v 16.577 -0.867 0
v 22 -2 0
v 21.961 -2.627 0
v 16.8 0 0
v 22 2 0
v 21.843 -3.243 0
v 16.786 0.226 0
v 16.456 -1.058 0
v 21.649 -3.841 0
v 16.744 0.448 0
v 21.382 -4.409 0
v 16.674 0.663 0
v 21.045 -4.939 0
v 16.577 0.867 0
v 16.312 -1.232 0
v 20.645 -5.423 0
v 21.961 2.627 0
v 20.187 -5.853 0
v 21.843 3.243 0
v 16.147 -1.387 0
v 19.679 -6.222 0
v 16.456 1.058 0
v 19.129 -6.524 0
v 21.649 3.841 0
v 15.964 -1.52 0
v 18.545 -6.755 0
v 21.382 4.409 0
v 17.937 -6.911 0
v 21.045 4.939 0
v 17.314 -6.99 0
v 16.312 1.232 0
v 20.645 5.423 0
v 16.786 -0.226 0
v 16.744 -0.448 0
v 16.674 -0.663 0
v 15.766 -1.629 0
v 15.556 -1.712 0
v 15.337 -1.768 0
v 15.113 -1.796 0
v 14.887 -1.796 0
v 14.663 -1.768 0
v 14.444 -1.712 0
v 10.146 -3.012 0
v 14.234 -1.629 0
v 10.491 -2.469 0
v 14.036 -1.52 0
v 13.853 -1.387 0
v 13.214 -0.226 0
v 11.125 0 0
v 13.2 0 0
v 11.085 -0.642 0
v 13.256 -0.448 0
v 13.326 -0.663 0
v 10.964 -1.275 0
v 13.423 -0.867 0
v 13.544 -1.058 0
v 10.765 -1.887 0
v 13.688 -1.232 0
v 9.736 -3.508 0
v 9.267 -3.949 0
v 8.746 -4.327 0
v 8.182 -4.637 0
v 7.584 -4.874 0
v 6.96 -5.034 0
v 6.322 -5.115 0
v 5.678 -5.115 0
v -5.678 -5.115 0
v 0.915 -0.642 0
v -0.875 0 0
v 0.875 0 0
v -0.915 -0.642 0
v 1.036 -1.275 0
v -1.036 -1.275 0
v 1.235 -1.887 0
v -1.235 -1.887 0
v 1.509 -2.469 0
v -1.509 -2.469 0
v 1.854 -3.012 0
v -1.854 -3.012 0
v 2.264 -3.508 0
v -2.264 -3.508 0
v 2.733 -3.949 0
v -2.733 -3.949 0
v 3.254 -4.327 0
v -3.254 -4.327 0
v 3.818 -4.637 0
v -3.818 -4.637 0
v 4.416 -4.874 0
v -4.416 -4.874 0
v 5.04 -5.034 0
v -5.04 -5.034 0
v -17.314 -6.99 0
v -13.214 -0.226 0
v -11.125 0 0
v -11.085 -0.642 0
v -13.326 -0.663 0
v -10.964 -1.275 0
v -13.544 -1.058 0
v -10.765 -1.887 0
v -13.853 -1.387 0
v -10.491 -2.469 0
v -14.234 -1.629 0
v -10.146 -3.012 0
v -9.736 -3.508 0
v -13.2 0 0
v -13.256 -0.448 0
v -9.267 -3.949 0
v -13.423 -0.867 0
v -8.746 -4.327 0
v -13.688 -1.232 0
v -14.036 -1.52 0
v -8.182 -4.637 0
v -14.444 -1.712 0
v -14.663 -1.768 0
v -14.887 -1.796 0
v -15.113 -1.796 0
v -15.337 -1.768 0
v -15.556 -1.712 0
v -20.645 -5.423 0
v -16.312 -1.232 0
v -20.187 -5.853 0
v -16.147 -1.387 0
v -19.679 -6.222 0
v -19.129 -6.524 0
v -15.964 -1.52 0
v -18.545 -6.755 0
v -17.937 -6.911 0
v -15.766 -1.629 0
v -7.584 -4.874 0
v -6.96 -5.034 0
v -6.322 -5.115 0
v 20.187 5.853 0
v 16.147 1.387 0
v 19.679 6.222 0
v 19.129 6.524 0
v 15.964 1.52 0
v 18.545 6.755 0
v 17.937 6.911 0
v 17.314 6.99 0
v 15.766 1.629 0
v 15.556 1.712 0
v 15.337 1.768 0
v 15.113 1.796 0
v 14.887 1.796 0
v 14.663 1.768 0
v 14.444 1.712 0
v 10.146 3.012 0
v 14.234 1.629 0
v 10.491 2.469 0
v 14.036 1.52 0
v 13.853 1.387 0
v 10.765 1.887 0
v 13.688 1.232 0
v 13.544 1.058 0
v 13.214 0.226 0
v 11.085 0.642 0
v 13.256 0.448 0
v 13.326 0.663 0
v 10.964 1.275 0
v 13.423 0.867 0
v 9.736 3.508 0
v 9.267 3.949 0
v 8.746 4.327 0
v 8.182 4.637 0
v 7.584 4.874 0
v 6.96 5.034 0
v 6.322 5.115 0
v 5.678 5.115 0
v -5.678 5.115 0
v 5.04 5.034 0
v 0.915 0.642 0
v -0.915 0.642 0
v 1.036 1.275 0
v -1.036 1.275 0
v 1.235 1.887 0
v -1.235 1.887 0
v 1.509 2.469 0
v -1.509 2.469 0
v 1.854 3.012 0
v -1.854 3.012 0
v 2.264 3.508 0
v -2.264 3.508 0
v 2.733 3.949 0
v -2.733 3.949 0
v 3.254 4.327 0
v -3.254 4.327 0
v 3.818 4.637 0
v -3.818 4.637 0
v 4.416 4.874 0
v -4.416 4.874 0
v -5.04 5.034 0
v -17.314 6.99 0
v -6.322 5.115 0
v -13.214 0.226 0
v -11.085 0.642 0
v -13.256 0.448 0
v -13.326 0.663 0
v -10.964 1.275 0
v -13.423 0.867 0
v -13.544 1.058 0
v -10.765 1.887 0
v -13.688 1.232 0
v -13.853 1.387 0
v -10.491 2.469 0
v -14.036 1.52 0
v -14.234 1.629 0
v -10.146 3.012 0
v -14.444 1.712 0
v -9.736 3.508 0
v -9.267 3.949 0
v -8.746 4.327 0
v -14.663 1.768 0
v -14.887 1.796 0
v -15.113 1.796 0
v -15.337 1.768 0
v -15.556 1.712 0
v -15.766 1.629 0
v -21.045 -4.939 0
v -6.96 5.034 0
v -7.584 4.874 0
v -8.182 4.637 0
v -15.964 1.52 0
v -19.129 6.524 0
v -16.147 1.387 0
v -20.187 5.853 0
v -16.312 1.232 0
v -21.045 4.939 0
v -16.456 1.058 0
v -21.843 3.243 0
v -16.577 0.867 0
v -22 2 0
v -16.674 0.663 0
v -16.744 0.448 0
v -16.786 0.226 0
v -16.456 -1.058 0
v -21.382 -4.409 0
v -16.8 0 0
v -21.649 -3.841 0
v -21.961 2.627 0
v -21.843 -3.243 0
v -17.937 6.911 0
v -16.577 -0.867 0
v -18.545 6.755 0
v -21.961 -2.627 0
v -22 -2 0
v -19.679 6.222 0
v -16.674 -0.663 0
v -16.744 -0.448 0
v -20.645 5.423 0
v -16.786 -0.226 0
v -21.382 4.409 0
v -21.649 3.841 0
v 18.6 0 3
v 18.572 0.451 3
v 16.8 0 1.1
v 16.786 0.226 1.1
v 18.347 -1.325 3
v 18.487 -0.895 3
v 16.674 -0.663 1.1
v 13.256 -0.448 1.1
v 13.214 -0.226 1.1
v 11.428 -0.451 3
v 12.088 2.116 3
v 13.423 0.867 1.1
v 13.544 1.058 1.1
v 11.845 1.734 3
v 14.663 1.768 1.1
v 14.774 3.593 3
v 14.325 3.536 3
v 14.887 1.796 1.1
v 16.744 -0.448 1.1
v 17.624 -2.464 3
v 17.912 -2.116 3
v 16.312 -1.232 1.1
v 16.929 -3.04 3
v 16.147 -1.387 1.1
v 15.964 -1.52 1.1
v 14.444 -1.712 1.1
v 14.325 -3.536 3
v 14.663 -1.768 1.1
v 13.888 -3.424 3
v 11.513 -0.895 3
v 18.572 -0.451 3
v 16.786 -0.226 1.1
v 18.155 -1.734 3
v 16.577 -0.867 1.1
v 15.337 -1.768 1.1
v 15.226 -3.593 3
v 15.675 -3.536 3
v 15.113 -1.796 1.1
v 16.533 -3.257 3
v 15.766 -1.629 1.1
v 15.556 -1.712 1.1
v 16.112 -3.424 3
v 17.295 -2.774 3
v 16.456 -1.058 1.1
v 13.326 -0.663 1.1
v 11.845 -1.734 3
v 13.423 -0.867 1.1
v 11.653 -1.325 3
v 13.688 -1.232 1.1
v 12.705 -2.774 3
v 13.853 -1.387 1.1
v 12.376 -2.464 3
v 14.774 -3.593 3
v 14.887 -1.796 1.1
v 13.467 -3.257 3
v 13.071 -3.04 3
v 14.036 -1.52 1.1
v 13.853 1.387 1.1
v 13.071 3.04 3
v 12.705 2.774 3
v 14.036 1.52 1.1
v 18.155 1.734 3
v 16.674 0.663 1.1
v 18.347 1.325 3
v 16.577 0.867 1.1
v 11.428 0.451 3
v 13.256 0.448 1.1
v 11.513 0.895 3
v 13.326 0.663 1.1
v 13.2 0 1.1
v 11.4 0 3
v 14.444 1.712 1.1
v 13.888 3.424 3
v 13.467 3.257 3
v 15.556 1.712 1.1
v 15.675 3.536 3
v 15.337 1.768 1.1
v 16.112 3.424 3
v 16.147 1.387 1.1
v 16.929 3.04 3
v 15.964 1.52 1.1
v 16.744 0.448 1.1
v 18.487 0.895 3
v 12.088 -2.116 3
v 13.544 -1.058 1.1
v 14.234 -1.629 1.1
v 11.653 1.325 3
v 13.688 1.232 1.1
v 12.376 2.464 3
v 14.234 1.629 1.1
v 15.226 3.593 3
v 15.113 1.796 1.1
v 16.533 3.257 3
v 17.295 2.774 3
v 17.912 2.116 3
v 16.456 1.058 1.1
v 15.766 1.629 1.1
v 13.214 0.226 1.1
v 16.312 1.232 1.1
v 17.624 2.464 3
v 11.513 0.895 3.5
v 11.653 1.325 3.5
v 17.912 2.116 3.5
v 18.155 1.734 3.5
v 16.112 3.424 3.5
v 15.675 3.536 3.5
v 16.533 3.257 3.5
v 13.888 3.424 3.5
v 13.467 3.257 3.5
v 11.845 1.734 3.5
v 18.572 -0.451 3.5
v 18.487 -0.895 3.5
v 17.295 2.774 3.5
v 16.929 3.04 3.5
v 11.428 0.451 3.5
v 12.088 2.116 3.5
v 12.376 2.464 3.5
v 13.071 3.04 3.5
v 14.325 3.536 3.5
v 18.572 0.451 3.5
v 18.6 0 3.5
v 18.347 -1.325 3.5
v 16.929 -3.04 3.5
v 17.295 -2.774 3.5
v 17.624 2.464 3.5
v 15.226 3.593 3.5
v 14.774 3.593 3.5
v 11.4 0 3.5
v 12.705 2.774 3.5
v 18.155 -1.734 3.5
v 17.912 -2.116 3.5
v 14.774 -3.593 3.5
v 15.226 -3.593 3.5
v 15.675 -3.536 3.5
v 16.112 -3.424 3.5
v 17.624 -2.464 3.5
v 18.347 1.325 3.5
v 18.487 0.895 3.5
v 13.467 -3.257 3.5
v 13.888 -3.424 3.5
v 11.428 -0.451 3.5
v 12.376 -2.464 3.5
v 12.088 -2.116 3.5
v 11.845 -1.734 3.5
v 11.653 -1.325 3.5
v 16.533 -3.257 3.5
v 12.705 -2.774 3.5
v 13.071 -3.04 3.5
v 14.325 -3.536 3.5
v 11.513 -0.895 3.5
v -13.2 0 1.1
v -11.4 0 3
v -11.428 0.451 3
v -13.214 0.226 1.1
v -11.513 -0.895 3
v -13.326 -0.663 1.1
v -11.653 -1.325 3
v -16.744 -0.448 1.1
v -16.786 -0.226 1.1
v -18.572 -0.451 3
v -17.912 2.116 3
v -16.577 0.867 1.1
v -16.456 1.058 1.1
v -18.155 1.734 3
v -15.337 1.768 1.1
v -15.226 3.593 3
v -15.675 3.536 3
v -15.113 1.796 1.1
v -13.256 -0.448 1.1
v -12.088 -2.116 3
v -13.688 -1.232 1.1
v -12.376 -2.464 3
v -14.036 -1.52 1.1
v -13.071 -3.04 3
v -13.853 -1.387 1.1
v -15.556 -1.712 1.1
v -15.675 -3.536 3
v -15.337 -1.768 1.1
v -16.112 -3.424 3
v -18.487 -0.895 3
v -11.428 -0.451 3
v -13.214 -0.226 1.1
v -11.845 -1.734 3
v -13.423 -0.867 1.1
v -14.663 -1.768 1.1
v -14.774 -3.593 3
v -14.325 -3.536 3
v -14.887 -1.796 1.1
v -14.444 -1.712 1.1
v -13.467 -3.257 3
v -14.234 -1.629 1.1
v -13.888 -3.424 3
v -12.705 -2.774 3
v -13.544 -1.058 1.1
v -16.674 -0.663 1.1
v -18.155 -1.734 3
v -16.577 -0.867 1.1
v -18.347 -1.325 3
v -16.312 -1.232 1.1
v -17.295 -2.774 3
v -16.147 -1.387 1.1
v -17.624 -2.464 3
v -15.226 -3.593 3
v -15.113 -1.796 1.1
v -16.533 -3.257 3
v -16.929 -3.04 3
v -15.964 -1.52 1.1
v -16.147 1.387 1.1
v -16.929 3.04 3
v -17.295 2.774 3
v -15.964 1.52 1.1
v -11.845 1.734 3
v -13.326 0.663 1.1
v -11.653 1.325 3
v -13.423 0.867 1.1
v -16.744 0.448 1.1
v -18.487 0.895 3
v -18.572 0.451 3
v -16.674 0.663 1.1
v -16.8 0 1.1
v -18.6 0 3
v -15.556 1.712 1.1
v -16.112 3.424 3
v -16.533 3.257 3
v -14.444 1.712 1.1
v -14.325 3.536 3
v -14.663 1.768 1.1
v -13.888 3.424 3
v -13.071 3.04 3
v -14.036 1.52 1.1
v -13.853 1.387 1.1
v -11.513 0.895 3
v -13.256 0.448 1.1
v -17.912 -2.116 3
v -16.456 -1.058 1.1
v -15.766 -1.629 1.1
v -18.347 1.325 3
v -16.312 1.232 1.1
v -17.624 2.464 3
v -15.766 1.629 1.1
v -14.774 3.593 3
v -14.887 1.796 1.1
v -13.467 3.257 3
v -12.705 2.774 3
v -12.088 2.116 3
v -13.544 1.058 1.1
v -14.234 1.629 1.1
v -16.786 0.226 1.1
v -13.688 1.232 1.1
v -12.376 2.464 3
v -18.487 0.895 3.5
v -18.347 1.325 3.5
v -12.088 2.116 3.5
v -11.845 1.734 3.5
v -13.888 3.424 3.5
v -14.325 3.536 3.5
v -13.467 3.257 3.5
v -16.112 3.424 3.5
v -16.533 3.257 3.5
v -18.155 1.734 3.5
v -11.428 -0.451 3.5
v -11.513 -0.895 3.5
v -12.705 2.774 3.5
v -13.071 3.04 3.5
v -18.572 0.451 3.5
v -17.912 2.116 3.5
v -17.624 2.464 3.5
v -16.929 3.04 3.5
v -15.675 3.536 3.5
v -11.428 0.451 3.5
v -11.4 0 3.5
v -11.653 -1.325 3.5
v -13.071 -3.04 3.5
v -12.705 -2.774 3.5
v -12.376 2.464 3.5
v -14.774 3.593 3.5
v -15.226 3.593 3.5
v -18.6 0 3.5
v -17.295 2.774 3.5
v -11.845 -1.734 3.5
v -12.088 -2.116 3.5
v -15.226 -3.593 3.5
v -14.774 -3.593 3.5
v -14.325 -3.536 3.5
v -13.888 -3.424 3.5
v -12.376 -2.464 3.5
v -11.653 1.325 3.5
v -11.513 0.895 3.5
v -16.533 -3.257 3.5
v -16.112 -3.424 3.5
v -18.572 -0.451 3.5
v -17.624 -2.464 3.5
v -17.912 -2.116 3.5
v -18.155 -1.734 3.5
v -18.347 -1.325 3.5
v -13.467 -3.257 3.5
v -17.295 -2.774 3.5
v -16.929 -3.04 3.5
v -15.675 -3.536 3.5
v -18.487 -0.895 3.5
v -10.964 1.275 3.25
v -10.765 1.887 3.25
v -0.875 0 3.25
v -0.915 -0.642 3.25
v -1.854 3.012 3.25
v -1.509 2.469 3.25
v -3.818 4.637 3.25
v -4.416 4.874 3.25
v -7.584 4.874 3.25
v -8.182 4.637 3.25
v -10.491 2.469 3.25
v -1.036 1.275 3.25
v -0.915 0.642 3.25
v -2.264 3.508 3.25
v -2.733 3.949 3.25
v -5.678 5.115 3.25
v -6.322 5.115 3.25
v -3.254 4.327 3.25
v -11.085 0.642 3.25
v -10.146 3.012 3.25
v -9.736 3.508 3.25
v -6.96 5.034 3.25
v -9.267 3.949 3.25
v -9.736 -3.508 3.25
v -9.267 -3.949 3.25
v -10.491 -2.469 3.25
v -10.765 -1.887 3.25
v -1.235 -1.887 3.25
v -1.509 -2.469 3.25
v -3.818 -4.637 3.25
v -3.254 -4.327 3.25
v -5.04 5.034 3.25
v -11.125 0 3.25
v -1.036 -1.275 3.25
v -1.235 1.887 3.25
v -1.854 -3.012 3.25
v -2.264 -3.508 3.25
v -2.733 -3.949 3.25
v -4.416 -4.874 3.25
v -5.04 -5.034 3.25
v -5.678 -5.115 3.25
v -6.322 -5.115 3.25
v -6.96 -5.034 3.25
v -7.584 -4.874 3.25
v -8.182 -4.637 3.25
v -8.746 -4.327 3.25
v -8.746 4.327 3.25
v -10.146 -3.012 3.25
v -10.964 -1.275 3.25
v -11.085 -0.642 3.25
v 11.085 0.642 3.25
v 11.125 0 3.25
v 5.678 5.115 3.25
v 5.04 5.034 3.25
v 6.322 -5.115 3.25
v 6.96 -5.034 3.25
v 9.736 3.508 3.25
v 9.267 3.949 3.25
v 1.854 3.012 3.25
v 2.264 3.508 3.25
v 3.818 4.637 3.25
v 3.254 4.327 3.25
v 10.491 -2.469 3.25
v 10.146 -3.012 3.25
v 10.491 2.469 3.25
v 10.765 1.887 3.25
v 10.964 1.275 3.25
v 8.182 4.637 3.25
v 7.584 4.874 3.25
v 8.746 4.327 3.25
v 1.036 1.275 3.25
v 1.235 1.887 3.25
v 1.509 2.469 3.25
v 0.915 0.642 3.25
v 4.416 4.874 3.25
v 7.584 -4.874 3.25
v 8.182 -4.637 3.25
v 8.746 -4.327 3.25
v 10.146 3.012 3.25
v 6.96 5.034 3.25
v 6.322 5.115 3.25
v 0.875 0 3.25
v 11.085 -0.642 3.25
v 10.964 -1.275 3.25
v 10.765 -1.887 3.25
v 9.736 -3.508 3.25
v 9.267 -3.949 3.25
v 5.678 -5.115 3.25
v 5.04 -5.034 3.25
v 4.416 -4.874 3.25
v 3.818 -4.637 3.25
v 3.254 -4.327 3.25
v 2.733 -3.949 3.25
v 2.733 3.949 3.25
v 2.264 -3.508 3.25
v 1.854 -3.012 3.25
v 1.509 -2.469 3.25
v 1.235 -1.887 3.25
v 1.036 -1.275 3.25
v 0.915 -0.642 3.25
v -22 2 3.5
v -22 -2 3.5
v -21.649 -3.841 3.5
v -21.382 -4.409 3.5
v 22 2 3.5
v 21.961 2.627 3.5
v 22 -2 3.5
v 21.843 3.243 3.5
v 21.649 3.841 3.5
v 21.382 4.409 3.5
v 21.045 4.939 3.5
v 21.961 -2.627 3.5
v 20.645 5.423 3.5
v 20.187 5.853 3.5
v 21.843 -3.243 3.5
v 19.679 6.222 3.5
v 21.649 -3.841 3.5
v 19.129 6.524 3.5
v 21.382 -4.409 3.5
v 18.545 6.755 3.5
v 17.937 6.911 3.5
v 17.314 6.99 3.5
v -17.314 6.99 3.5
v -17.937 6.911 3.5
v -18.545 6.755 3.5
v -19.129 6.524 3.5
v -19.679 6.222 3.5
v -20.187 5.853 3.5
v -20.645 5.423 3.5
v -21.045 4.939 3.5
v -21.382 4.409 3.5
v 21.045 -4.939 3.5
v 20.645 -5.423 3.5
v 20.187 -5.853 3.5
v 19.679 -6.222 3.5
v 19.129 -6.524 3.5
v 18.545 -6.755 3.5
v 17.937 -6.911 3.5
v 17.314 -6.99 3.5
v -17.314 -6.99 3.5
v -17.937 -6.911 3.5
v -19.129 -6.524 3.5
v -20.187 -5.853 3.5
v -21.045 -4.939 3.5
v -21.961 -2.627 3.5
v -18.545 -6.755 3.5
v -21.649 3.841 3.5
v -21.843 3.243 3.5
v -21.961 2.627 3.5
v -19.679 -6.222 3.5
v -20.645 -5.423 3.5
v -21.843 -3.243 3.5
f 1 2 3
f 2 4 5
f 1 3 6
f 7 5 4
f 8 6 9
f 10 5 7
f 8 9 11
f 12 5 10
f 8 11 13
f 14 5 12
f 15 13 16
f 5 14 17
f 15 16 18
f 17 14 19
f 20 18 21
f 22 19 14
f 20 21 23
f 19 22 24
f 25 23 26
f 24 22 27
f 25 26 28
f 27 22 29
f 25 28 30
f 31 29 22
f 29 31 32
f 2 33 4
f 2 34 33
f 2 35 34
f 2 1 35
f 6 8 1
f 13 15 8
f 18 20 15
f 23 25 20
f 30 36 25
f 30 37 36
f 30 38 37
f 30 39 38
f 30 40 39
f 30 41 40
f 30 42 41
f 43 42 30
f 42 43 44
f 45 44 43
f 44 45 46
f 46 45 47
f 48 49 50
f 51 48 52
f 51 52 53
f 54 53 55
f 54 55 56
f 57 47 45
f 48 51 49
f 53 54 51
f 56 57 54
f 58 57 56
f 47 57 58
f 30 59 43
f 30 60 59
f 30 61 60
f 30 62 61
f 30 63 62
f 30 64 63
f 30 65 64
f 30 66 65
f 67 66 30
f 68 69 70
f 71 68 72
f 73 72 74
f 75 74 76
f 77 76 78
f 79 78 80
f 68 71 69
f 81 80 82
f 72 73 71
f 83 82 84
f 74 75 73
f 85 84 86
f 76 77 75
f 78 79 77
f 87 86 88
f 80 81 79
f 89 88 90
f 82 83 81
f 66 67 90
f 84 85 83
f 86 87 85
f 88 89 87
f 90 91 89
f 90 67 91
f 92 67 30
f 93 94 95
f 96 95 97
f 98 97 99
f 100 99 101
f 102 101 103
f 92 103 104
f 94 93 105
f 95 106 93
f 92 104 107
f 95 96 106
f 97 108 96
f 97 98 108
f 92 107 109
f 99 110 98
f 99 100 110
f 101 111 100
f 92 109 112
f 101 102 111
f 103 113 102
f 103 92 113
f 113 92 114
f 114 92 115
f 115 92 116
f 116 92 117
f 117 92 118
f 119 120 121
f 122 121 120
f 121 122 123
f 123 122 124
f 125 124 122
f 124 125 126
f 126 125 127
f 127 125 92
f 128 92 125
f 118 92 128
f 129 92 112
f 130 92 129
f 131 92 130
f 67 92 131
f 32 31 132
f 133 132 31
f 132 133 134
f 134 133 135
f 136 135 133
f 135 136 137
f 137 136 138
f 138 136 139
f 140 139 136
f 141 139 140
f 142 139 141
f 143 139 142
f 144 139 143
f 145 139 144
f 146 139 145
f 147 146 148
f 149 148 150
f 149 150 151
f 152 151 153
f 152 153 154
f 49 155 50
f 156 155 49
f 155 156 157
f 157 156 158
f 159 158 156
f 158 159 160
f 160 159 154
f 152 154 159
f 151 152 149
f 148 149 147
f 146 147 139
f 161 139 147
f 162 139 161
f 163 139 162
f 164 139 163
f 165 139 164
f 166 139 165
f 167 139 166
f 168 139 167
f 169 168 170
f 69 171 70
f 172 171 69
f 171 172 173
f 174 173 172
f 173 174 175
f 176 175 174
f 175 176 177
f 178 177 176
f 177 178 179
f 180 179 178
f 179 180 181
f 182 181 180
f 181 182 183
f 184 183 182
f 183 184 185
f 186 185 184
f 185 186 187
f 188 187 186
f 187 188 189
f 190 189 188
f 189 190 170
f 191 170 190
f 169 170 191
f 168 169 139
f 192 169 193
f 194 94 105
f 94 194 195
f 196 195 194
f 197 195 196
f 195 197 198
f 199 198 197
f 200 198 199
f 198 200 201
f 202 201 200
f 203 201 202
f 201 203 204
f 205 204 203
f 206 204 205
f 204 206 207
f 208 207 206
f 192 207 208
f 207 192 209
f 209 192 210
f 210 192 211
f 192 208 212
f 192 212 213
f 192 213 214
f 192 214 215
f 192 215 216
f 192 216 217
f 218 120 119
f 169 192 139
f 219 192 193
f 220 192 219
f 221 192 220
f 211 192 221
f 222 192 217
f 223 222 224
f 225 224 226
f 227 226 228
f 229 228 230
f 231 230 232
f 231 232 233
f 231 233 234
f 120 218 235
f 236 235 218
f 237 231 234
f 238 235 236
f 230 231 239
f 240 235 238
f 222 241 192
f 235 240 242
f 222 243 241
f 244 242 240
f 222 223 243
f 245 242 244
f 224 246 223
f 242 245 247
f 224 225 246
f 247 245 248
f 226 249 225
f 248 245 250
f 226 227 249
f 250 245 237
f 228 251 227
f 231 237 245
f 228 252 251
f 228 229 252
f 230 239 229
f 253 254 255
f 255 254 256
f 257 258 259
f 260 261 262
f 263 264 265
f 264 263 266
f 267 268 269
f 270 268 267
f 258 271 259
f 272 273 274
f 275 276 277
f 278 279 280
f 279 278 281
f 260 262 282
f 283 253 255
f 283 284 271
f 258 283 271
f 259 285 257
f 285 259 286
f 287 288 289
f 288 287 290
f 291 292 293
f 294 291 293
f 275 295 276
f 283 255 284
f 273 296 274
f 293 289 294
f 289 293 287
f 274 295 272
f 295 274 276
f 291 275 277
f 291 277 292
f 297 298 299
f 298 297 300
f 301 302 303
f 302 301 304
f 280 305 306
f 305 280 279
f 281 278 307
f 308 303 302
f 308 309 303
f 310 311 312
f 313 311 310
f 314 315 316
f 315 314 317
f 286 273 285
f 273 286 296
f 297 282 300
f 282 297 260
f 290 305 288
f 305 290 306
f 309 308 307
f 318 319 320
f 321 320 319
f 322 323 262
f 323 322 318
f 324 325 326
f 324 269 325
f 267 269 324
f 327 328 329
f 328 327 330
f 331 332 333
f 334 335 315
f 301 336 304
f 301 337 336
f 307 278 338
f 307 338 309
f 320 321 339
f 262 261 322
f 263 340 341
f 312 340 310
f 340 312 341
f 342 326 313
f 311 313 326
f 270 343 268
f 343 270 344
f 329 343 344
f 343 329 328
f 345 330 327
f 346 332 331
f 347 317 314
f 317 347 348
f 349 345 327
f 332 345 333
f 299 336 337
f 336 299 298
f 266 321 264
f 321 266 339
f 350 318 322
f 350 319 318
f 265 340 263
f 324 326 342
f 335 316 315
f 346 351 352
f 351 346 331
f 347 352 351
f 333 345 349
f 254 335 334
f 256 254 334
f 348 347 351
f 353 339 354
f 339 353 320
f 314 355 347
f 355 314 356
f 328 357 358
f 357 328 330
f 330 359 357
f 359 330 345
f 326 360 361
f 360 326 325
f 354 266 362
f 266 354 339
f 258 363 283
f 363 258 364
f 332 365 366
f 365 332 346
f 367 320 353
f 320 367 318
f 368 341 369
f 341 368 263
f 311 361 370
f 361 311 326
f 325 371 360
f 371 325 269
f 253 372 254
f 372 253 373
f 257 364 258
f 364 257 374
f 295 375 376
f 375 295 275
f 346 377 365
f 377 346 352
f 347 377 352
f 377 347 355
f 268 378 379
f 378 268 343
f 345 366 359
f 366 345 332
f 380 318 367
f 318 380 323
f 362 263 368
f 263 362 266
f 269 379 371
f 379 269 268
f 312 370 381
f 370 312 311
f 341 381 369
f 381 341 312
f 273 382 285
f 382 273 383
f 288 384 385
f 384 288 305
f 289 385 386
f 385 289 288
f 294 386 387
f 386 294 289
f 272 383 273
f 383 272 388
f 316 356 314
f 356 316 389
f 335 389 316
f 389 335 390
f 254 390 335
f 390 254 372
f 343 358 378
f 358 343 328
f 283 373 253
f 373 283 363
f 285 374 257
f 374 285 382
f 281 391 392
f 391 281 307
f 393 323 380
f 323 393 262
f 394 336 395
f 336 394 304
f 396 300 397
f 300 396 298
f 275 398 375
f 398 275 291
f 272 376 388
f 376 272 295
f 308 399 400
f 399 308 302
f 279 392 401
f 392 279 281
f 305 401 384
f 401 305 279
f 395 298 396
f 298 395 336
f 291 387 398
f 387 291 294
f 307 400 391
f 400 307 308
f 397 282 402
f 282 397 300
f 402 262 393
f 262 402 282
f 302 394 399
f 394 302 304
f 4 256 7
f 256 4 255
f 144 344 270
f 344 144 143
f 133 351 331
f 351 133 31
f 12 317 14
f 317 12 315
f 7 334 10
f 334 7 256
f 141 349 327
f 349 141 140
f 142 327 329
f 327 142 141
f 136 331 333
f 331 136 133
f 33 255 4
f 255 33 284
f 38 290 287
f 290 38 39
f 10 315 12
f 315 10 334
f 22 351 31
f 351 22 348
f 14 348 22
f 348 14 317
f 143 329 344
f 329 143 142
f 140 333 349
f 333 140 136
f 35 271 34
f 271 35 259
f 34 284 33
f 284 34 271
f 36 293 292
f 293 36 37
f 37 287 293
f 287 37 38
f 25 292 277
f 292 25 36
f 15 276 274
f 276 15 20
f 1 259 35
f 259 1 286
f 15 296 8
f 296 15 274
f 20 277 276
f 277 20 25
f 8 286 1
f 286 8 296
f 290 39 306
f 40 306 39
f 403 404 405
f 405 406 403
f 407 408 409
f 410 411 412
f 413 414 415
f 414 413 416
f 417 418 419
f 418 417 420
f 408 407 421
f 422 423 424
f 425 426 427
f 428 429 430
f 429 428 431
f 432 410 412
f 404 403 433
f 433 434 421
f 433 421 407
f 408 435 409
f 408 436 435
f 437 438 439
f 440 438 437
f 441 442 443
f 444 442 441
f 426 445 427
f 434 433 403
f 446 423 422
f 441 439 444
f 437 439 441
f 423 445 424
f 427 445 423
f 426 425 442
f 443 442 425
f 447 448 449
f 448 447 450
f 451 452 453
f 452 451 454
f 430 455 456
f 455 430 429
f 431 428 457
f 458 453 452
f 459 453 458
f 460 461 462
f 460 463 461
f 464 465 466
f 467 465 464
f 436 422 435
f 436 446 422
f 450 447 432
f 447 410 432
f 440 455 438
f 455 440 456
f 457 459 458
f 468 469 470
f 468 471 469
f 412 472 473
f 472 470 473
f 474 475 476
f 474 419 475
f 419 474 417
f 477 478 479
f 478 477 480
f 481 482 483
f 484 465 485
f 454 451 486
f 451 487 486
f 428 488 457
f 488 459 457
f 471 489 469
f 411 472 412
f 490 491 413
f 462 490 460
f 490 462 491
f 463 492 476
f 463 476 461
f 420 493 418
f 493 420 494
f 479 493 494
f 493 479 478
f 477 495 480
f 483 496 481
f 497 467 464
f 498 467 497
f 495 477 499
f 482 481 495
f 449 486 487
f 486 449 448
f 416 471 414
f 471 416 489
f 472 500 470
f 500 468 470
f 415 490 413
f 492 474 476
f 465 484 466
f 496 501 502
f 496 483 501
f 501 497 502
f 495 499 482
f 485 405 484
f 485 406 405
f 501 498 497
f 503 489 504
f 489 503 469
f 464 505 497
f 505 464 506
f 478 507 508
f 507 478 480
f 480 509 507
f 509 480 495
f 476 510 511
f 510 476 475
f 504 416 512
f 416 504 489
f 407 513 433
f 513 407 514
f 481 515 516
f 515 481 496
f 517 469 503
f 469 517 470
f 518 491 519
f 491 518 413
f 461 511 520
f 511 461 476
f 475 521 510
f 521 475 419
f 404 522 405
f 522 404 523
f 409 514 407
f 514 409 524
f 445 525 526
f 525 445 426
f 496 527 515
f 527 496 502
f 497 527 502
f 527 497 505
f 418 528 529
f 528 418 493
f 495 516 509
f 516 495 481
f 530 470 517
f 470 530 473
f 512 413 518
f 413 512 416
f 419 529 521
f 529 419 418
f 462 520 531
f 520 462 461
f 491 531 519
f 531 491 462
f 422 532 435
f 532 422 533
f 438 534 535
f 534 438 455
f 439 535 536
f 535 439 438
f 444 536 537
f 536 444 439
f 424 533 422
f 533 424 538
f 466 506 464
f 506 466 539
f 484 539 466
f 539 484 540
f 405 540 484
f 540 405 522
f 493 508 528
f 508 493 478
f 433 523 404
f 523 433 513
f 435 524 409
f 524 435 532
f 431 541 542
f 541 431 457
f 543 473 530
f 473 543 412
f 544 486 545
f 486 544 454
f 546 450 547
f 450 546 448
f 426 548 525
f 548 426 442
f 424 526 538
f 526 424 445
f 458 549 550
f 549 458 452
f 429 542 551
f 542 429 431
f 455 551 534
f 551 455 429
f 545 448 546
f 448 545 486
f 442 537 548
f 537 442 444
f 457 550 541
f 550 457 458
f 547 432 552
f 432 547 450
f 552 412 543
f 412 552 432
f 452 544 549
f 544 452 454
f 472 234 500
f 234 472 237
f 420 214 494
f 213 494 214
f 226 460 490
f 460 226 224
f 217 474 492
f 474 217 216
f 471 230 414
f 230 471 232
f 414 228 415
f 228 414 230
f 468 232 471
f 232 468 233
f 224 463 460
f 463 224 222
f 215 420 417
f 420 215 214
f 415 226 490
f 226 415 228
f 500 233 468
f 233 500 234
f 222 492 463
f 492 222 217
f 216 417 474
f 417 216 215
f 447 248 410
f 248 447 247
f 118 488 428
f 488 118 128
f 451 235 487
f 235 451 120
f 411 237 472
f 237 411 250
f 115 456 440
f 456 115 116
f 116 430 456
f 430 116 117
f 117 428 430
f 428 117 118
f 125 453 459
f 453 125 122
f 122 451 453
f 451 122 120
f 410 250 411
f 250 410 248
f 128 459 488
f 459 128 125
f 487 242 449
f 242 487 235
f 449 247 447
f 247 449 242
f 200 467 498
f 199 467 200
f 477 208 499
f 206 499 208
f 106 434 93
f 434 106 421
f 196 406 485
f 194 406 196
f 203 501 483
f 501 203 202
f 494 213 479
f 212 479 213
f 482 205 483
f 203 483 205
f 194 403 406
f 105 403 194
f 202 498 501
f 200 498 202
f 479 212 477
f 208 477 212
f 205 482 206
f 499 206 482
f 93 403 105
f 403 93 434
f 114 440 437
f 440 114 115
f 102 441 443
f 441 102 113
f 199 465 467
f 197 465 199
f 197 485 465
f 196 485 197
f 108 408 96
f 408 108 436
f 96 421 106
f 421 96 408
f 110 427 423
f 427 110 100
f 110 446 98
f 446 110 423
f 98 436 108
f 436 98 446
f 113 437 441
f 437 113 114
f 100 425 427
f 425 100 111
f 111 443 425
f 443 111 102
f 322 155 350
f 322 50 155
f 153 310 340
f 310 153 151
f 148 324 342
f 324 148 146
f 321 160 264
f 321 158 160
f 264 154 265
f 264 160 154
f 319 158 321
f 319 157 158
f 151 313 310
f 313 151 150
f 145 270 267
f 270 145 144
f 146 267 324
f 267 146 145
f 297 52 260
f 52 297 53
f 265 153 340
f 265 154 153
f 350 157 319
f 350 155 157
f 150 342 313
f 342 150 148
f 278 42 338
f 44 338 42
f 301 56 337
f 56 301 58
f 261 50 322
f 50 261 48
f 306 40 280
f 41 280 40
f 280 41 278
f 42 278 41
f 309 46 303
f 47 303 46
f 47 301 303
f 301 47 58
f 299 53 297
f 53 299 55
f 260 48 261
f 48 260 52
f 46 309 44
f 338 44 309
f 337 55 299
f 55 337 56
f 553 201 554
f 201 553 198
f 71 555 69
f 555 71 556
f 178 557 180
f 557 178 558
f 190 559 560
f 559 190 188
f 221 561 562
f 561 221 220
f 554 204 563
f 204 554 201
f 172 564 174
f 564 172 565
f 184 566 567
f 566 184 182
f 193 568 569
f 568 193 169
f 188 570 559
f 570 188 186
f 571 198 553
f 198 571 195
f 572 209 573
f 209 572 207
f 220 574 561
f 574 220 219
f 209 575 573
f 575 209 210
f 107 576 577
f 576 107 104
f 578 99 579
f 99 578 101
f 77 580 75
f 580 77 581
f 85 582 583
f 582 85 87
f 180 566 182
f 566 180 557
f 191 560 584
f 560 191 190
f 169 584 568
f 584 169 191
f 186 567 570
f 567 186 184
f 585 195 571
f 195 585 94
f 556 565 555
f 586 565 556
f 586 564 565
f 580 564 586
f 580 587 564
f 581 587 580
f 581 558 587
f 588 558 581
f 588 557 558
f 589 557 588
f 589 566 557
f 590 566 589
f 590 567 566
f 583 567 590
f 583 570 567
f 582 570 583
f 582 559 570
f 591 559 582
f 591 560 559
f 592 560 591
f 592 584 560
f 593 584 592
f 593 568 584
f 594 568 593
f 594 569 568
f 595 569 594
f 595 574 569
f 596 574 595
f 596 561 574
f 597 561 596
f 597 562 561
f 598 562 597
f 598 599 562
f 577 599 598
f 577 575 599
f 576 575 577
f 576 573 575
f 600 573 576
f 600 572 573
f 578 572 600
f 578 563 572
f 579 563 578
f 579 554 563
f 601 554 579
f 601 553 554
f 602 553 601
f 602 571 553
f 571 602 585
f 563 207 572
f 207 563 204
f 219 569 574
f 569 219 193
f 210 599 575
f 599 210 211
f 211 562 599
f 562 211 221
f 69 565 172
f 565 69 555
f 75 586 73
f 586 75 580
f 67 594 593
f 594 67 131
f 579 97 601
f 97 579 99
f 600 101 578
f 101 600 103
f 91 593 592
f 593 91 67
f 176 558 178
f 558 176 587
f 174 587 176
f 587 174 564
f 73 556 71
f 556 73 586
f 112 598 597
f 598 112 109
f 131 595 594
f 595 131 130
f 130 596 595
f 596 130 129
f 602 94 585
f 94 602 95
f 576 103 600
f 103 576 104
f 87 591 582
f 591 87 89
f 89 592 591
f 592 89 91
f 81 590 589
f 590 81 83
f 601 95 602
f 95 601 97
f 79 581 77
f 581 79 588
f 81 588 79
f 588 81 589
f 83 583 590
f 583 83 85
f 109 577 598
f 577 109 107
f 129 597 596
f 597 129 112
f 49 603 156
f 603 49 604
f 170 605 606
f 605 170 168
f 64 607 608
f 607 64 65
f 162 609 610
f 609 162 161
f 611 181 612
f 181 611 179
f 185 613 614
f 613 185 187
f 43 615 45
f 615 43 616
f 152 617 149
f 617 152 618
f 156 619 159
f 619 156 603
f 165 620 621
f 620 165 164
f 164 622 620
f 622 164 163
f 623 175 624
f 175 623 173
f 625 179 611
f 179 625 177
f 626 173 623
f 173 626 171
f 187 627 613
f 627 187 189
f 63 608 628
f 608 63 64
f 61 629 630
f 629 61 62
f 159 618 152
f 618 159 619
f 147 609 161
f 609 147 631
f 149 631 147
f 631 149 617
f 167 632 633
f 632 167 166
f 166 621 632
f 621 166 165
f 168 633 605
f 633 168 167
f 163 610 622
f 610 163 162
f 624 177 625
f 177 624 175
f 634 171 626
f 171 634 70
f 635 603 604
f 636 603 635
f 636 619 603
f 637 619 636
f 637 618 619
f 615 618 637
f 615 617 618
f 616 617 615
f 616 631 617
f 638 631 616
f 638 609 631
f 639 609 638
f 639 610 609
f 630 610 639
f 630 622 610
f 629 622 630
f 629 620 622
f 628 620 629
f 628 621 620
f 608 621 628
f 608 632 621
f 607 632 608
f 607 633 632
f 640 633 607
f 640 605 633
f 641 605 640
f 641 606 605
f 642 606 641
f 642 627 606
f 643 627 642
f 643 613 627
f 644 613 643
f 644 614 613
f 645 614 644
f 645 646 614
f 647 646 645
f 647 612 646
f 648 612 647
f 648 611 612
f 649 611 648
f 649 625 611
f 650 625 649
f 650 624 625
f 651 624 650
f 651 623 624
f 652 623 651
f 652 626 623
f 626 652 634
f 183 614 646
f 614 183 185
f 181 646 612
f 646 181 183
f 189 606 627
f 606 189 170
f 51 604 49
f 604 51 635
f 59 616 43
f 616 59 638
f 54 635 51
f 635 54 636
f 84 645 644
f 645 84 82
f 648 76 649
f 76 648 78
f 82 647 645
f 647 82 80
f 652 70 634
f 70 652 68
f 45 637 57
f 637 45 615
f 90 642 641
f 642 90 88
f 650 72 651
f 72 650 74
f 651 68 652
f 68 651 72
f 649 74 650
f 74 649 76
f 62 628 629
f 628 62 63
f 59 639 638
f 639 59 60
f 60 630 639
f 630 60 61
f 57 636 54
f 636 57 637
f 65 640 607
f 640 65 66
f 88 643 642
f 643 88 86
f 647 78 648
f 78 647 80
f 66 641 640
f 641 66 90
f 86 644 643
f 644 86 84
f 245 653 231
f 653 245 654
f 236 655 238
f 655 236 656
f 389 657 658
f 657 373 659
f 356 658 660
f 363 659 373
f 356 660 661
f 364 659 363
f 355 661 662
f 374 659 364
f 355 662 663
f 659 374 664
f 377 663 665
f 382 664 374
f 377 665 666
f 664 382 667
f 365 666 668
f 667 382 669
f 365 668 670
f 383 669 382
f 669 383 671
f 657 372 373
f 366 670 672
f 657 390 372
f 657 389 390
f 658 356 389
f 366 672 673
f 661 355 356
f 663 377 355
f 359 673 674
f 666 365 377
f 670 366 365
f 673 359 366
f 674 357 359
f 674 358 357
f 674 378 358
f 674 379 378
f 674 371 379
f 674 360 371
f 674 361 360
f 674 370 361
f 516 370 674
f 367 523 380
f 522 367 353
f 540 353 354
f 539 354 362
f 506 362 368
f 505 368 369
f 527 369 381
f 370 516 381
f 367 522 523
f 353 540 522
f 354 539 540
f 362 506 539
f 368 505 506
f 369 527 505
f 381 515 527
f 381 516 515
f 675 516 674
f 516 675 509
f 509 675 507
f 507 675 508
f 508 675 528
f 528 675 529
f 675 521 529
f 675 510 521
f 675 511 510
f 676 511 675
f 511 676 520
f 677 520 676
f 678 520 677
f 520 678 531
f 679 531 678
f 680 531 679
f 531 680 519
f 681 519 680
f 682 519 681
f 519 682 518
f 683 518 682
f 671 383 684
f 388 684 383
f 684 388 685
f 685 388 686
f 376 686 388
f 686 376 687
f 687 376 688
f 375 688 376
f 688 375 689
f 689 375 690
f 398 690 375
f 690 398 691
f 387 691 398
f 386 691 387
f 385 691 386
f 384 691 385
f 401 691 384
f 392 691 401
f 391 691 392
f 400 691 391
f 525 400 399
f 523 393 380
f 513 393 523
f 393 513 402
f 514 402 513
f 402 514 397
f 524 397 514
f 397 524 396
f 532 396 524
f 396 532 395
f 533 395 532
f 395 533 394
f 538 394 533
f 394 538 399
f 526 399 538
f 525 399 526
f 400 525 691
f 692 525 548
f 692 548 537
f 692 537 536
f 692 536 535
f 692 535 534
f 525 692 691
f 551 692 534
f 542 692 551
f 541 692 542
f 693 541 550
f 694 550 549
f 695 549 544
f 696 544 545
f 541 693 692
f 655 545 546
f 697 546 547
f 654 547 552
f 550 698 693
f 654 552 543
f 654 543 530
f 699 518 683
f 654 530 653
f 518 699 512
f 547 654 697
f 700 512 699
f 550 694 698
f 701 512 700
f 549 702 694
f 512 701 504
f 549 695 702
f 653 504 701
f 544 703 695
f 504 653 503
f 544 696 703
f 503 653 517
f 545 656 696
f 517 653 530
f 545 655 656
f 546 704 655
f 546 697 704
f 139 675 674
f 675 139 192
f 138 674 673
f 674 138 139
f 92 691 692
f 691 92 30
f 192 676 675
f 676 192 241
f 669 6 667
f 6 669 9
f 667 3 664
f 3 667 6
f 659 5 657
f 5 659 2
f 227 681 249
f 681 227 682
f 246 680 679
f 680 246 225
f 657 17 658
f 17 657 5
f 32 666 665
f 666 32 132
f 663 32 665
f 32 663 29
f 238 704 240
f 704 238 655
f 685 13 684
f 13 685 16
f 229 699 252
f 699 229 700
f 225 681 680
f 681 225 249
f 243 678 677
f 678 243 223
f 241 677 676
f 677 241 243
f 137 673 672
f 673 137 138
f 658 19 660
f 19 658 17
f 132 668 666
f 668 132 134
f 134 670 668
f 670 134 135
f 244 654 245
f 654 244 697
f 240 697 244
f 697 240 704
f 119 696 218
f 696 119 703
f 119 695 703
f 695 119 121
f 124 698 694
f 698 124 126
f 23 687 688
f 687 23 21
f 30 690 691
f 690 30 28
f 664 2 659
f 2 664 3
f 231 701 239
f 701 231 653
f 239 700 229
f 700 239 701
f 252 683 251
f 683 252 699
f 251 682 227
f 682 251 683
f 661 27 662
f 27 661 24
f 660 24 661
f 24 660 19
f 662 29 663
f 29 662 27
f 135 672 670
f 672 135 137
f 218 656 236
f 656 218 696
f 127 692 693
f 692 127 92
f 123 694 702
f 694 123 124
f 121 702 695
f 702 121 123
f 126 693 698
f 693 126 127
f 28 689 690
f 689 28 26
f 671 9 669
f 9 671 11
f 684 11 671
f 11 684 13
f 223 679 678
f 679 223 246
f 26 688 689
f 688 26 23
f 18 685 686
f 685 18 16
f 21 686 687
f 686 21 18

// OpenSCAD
$fn = 50;


difference() {
	union() {
		hull() {
			translate(v = [-17.0000000000, 2.0000000000, 0]) {
				cylinder(h = 3.5000000000, r = 5);
			}
			translate(v = [17.0000000000, 2.0000000000, 0]) {
				cylinder(h = 3.5000000000, r = 5);
			}
			translate(v = [-17.0000000000, -2.0000000000, 0]) {
				cylinder(h = 3.5000000000, r = 5);
			}
			translate(v = [17.0000000000, -2.0000000000, 0]) {
				cylinder(h = 3.5000000000, r = 5);
			}
		}
	}
	union() {
		translate(v = [15.0000000000, 0, 3.0000000000]) {
			rotate(a = [0, 0, 0]) {
				difference() {
					union() {
						translate(v = [0, 0, -3.0000000000]) {
							cylinder(h = 3.0000000000, r = 1.5000000000);
						}
						translate(v = [0, 0, -1.9000000000]) {
							cylinder(h = 1.9000000000, r1 = 1.8000000000, r2 = 3.6000000000);
						}
						cylinder(h = 250, r = 3.6000000000);
						translate(v = [0, 0, -3.0000000000]) {
							cylinder(h = 3.0000000000, r = 1.8000000000);
						}
						translate(v = [0, 0, -3.0000000000]) {
							cylinder(h = 3.0000000000, r = 1.5000000000);
						}
					}
					union();
				}
			}
		}
		translate(v = [-15.0000000000, 0, 3.0000000000]) {
			rotate(a = [0, 0, 0]) {
				difference() {
					union() {
						translate(v = [0, 0, -3.0000000000]) {
							cylinder(h = 3.0000000000, r = 1.5000000000);
						}
						translate(v = [0, 0, -1.9000000000]) {
							cylinder(h = 1.9000000000, r1 = 1.8000000000, r2 = 3.6000000000);
						}
						cylinder(h = 250, r = 3.6000000000);
						translate(v = [0, 0, -3.0000000000]) {
							cylinder(h = 3.0000000000, r = 1.8000000000);
						}
						translate(v = [0, 0, -3.0000000000]) {
							cylinder(h = 3.0000000000, r = 1.5000000000);
						}
					}
					union();
				}
			}
		}
		translate(v = [-15.0000000000, 0.0000000000, 0]) {
			cylinder(h = 3.5000000000, r = 1.8000000000);
		}
		translate(v = [15.0000000000, 0.0000000000, 0]) {
			cylinder(h = 3.5000000000, r = 1.8000000000);
		}
		translate(v = [-15.0000000000, 0.0000000000, 0]) {
			cylinder(h = 3.5000000000, r = 1.8000000000);
		}
		translate(v = [15.0000000000, 0.0000000000, 0]) {
			cylinder(h = 3.5000000000, r = 1.8000000000);
		}
		translate(v = [-15.0000000000, 0.0000000000, 0]) {
			cylinder(h = 3.5000000000, r = 1.8000000000);
		}
		translate(v = [15.0000000000, 0.0000000000, 0]) {
			cylinder(h = 3.5000000000, r = 1.8000000000);
		}
		translate(v = [-15.0000000000, 0.0000000000, 0]) {
			cylinder(h = 3.5000000000, r = 1.8000000000);
		}
		translate(v = [15.0000000000, 0.0000000000, 0]) {
			cylinder(h = 3.5000000000, r = 1.8000000000);
		}
		#translate(v = [-6.0000000000, 0, 0.0000000000]) {
			cylinder(h = 3.2500000000, r = 5.1250000000);
		}
		#translate(v = [6.0000000000, 0, 0.0000000000]) {
			cylinder(h = 3.2500000000, r = 5.1250000000);
		}
	}
}
